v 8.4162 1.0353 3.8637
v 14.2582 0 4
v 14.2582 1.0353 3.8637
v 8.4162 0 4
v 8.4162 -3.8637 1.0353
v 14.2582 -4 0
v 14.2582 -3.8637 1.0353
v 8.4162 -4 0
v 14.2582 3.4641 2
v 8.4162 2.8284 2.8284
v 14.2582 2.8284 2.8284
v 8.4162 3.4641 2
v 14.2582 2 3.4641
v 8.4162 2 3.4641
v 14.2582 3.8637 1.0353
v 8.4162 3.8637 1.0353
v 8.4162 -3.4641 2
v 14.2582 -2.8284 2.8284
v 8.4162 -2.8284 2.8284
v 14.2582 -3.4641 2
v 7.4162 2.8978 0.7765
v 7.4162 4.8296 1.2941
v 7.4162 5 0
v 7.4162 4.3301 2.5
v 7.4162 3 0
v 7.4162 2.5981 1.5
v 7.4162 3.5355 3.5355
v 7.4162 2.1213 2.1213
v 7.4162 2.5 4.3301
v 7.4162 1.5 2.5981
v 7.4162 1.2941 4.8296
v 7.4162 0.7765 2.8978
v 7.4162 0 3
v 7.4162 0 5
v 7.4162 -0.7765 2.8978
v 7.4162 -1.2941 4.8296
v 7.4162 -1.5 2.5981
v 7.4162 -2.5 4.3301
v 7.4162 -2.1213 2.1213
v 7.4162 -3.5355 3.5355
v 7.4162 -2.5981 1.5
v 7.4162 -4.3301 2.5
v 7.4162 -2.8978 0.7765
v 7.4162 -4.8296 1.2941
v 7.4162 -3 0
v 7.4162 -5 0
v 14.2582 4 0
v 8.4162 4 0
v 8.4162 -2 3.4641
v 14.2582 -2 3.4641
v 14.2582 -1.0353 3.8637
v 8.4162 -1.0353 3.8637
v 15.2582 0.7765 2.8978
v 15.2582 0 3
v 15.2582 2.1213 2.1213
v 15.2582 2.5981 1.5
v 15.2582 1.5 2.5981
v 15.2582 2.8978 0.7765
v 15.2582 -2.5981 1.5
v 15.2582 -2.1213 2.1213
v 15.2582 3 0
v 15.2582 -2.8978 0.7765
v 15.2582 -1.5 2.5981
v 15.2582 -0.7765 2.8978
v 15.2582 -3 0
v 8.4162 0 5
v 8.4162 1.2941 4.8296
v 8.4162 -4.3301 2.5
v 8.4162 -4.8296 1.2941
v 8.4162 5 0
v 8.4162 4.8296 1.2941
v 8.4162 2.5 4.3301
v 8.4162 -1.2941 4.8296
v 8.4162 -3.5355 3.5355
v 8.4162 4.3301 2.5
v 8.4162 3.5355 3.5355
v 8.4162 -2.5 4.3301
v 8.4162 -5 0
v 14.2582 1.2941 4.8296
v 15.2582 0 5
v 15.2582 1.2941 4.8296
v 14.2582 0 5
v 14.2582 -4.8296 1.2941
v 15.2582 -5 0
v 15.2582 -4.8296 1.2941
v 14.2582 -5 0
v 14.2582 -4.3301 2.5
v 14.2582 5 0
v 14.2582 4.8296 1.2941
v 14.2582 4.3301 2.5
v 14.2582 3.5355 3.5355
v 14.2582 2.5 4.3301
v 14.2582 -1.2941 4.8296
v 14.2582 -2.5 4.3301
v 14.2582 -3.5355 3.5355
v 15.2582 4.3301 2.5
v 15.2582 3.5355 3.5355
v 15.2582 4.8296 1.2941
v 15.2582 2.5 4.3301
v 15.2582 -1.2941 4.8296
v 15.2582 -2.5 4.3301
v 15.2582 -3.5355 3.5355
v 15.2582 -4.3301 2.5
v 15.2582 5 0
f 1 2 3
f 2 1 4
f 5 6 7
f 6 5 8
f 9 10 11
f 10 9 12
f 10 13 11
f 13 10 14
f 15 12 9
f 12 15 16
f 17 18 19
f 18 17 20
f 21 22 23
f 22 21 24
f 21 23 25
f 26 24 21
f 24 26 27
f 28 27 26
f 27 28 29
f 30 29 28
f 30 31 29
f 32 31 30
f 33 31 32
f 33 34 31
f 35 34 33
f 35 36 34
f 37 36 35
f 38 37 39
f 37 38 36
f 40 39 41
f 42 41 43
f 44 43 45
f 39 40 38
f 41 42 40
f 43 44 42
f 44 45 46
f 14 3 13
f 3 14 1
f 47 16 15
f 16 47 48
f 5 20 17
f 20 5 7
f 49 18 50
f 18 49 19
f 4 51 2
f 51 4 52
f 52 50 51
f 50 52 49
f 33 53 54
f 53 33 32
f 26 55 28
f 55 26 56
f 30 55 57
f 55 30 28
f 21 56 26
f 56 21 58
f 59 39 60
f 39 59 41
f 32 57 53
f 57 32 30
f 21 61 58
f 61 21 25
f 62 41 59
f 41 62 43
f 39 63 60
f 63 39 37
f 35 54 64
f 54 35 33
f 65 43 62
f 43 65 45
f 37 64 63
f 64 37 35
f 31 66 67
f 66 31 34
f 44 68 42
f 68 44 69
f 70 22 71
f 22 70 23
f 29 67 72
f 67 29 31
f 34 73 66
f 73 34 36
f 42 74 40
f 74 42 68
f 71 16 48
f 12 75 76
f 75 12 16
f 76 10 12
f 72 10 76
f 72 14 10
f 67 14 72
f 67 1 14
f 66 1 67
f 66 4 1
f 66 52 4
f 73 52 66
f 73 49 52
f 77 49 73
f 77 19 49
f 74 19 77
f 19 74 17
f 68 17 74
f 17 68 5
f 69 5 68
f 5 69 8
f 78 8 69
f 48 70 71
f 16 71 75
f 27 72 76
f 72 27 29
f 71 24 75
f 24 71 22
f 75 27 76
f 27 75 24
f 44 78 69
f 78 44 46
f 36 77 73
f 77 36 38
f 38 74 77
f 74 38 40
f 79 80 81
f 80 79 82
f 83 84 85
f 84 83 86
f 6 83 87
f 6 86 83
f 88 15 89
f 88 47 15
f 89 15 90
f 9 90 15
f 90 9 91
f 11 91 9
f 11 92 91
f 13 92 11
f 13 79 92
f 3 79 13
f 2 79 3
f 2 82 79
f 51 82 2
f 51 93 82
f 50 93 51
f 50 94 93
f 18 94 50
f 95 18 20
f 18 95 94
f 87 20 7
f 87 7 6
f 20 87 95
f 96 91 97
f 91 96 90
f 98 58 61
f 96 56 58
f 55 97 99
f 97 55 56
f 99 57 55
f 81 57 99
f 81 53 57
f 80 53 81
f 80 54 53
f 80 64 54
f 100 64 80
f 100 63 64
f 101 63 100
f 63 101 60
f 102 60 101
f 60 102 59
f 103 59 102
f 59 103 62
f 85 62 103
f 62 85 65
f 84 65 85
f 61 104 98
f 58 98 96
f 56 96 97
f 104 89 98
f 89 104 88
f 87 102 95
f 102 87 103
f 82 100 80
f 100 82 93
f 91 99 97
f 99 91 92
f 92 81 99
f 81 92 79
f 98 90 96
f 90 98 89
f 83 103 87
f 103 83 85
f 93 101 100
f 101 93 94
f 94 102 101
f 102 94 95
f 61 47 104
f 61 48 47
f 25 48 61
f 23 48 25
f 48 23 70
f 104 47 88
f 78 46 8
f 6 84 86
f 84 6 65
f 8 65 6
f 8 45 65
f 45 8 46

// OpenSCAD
// file: ../build_environments.scad
// build_environments.scad: modules to build level sections
//

module pool(diameter=10.0, wall_height=2.0, step_width=3.0, connections=[])
{
    difference() {
        union() {
        difference() {
            cylinder(h=0.5,r1=diameter+step_width,r2=diameter+step_width,$fn=48);
            translate([0,0,-0.1])
                cylinder(h=0.7,r1=diameter,r2=diameter,$fn=48);
        }
        difference() {
            cylinder(h=wall_height,r1=diameter+step_width+1.0,r2=diameter+step_width+1.0,$fn=48);
            translate([0,0,-0.1])
                cylinder(h=wall_height+0.2,r1=diameter+step_width,r2=diameter+step_width,$fn=48);
        }
        }
    
        for (c = connections)
        {
            rotate([0,90,0]) {
                angle = atan2(c[1],c[0]);
                rotate([-angle,0,0]) {
                    cylinder(h=diameter+5.0,r1=c[2],r2=c[2],$fn=48);
                }
            }
        }
    }
}

module straight(length=10.0, width=2.0, dy1=0.0, dy2=0.0, dz=0.0)
{
    dims = [0, 0, 0, 0, 0, (dz/length)];
    matrix = [
        [ 1, dims[0], dims[1], 0 ],
        [ dims[2], 1, dims[4], 0 ],
        [ dims[5], dims[3], 1, 0 ],
        [ 0, 0, 0, 1 ]
    ];
    multmatrix(matrix)
    difference() {
        translate([dy1,0,0])
        union() {
            rotate([0,90,0]) {
                difference() {
                    cylinder(h=(length-dy1-dy2),r1=width+1.0,r2=width+1.0,$fn=24);
                    translate([0,0,-0.1])
                        cylinder(h=(length-dy1-dy2+0.2),r1=width,r2=width,$fn=24);
                }
                difference() {
                    cylinder(h=1.0,r1=width+2.0,r2=width+2.0,$fn=24);
                    translate([0,0,-0.1])
                        cylinder(h=1.2,r1=width,r2=width,$fn=24);
                }
                translate([0,0,(length-dy1-dy2)-1.0]) {
                    difference() {
                        cylinder(h=1.0,r1=width+2.0,r2=width+2.0,$fn=24);
                        translate([0,0,-0.1])
                            cylinder(h=1.2,r1=width,r2=width,$fn=24);
                    }
                }
            }
        }
        translate([0,0,-(2*width+4.0)/2])
            cube([3*length,3*length,2*width+4.0],center=true);
    }
}

module curve(p0=[0,0], center=[0,0], dir=1, angle=0.0, width=2.0)
{
    radius = sqrt((p0[0]-center[0])*(p0[0]-center[0]) + (p0[1]-center[1])*(p0[1]-center[1]));
    if (dir == 0) {
        difference() {
            rotate([0,0,-90])
            difference() {
                rotate_extrude(angle = angle, convexity = 10, $fn=32)
                    translate([radius, 0, 0])
                        circle(r = width+1.0,$fn=24);
                rotate([0,0,-1.0])
                    rotate_extrude(angle = angle+2.0, convexity = 10, $fn=32)
                        translate([radius, 0, 0])
                            circle(r = width,$fn=24);
            }
            translate([0,0,-(2*width+4.0)/2])
                cube([5*radius,5*radius,2*width+4.0],center=true);
        }
    }
    else {
        difference() {
            rotate([0,0,90])
            difference() {
                rotate_extrude(angle = -angle, convexity = 10, $fn=32)
                    translate([radius, 0, 0])
                        circle(r = width+1.0,$fn=24);
                rotate([0,0,1.0])
                    rotate_extrude(angle = -angle-2.0, convexity = 10, $fn=32)
                        translate([radius, 0, 0])
                            circle(r = width,$fn=24);
            }
            translate([0,0,-(2*width+4.0)/2])
                cube([5*radius,5*radius,2*width+4.0],center=true);
        }
    }

}

// test pool
//pool(diameter=12.0000, wall_height=3.0000, step_width=3.0000, connections=[[0.0000,-26.0000,2.0000], [23.6074,0.0000,2.0000]]);

// test straight, slope
//straight(length=26.0000, width=2.0000, dy1=11.8322, dy2=6.7082, dz=0.0000);
//straight(length=29.1549, width=12.0000, dy1=0.0000, dy2=0.0000, dz=-15.0000);

// test curve
//curve(p0=[23.6074, 0.0000], center=[23.6074, 5.0000], dir=0, angle=60.1011, width=2.0000);
//curve(p0=[33.6426, 12.4219], center=[37.9771, 9.9295], dir=1, angle=120.4627, width=2.0000);
// main file
use <../build_environments.scad>;
straight(length=15.2582, width=3.0000, dy1=7.4162, dy2=0.0000, dz=0.0000);
